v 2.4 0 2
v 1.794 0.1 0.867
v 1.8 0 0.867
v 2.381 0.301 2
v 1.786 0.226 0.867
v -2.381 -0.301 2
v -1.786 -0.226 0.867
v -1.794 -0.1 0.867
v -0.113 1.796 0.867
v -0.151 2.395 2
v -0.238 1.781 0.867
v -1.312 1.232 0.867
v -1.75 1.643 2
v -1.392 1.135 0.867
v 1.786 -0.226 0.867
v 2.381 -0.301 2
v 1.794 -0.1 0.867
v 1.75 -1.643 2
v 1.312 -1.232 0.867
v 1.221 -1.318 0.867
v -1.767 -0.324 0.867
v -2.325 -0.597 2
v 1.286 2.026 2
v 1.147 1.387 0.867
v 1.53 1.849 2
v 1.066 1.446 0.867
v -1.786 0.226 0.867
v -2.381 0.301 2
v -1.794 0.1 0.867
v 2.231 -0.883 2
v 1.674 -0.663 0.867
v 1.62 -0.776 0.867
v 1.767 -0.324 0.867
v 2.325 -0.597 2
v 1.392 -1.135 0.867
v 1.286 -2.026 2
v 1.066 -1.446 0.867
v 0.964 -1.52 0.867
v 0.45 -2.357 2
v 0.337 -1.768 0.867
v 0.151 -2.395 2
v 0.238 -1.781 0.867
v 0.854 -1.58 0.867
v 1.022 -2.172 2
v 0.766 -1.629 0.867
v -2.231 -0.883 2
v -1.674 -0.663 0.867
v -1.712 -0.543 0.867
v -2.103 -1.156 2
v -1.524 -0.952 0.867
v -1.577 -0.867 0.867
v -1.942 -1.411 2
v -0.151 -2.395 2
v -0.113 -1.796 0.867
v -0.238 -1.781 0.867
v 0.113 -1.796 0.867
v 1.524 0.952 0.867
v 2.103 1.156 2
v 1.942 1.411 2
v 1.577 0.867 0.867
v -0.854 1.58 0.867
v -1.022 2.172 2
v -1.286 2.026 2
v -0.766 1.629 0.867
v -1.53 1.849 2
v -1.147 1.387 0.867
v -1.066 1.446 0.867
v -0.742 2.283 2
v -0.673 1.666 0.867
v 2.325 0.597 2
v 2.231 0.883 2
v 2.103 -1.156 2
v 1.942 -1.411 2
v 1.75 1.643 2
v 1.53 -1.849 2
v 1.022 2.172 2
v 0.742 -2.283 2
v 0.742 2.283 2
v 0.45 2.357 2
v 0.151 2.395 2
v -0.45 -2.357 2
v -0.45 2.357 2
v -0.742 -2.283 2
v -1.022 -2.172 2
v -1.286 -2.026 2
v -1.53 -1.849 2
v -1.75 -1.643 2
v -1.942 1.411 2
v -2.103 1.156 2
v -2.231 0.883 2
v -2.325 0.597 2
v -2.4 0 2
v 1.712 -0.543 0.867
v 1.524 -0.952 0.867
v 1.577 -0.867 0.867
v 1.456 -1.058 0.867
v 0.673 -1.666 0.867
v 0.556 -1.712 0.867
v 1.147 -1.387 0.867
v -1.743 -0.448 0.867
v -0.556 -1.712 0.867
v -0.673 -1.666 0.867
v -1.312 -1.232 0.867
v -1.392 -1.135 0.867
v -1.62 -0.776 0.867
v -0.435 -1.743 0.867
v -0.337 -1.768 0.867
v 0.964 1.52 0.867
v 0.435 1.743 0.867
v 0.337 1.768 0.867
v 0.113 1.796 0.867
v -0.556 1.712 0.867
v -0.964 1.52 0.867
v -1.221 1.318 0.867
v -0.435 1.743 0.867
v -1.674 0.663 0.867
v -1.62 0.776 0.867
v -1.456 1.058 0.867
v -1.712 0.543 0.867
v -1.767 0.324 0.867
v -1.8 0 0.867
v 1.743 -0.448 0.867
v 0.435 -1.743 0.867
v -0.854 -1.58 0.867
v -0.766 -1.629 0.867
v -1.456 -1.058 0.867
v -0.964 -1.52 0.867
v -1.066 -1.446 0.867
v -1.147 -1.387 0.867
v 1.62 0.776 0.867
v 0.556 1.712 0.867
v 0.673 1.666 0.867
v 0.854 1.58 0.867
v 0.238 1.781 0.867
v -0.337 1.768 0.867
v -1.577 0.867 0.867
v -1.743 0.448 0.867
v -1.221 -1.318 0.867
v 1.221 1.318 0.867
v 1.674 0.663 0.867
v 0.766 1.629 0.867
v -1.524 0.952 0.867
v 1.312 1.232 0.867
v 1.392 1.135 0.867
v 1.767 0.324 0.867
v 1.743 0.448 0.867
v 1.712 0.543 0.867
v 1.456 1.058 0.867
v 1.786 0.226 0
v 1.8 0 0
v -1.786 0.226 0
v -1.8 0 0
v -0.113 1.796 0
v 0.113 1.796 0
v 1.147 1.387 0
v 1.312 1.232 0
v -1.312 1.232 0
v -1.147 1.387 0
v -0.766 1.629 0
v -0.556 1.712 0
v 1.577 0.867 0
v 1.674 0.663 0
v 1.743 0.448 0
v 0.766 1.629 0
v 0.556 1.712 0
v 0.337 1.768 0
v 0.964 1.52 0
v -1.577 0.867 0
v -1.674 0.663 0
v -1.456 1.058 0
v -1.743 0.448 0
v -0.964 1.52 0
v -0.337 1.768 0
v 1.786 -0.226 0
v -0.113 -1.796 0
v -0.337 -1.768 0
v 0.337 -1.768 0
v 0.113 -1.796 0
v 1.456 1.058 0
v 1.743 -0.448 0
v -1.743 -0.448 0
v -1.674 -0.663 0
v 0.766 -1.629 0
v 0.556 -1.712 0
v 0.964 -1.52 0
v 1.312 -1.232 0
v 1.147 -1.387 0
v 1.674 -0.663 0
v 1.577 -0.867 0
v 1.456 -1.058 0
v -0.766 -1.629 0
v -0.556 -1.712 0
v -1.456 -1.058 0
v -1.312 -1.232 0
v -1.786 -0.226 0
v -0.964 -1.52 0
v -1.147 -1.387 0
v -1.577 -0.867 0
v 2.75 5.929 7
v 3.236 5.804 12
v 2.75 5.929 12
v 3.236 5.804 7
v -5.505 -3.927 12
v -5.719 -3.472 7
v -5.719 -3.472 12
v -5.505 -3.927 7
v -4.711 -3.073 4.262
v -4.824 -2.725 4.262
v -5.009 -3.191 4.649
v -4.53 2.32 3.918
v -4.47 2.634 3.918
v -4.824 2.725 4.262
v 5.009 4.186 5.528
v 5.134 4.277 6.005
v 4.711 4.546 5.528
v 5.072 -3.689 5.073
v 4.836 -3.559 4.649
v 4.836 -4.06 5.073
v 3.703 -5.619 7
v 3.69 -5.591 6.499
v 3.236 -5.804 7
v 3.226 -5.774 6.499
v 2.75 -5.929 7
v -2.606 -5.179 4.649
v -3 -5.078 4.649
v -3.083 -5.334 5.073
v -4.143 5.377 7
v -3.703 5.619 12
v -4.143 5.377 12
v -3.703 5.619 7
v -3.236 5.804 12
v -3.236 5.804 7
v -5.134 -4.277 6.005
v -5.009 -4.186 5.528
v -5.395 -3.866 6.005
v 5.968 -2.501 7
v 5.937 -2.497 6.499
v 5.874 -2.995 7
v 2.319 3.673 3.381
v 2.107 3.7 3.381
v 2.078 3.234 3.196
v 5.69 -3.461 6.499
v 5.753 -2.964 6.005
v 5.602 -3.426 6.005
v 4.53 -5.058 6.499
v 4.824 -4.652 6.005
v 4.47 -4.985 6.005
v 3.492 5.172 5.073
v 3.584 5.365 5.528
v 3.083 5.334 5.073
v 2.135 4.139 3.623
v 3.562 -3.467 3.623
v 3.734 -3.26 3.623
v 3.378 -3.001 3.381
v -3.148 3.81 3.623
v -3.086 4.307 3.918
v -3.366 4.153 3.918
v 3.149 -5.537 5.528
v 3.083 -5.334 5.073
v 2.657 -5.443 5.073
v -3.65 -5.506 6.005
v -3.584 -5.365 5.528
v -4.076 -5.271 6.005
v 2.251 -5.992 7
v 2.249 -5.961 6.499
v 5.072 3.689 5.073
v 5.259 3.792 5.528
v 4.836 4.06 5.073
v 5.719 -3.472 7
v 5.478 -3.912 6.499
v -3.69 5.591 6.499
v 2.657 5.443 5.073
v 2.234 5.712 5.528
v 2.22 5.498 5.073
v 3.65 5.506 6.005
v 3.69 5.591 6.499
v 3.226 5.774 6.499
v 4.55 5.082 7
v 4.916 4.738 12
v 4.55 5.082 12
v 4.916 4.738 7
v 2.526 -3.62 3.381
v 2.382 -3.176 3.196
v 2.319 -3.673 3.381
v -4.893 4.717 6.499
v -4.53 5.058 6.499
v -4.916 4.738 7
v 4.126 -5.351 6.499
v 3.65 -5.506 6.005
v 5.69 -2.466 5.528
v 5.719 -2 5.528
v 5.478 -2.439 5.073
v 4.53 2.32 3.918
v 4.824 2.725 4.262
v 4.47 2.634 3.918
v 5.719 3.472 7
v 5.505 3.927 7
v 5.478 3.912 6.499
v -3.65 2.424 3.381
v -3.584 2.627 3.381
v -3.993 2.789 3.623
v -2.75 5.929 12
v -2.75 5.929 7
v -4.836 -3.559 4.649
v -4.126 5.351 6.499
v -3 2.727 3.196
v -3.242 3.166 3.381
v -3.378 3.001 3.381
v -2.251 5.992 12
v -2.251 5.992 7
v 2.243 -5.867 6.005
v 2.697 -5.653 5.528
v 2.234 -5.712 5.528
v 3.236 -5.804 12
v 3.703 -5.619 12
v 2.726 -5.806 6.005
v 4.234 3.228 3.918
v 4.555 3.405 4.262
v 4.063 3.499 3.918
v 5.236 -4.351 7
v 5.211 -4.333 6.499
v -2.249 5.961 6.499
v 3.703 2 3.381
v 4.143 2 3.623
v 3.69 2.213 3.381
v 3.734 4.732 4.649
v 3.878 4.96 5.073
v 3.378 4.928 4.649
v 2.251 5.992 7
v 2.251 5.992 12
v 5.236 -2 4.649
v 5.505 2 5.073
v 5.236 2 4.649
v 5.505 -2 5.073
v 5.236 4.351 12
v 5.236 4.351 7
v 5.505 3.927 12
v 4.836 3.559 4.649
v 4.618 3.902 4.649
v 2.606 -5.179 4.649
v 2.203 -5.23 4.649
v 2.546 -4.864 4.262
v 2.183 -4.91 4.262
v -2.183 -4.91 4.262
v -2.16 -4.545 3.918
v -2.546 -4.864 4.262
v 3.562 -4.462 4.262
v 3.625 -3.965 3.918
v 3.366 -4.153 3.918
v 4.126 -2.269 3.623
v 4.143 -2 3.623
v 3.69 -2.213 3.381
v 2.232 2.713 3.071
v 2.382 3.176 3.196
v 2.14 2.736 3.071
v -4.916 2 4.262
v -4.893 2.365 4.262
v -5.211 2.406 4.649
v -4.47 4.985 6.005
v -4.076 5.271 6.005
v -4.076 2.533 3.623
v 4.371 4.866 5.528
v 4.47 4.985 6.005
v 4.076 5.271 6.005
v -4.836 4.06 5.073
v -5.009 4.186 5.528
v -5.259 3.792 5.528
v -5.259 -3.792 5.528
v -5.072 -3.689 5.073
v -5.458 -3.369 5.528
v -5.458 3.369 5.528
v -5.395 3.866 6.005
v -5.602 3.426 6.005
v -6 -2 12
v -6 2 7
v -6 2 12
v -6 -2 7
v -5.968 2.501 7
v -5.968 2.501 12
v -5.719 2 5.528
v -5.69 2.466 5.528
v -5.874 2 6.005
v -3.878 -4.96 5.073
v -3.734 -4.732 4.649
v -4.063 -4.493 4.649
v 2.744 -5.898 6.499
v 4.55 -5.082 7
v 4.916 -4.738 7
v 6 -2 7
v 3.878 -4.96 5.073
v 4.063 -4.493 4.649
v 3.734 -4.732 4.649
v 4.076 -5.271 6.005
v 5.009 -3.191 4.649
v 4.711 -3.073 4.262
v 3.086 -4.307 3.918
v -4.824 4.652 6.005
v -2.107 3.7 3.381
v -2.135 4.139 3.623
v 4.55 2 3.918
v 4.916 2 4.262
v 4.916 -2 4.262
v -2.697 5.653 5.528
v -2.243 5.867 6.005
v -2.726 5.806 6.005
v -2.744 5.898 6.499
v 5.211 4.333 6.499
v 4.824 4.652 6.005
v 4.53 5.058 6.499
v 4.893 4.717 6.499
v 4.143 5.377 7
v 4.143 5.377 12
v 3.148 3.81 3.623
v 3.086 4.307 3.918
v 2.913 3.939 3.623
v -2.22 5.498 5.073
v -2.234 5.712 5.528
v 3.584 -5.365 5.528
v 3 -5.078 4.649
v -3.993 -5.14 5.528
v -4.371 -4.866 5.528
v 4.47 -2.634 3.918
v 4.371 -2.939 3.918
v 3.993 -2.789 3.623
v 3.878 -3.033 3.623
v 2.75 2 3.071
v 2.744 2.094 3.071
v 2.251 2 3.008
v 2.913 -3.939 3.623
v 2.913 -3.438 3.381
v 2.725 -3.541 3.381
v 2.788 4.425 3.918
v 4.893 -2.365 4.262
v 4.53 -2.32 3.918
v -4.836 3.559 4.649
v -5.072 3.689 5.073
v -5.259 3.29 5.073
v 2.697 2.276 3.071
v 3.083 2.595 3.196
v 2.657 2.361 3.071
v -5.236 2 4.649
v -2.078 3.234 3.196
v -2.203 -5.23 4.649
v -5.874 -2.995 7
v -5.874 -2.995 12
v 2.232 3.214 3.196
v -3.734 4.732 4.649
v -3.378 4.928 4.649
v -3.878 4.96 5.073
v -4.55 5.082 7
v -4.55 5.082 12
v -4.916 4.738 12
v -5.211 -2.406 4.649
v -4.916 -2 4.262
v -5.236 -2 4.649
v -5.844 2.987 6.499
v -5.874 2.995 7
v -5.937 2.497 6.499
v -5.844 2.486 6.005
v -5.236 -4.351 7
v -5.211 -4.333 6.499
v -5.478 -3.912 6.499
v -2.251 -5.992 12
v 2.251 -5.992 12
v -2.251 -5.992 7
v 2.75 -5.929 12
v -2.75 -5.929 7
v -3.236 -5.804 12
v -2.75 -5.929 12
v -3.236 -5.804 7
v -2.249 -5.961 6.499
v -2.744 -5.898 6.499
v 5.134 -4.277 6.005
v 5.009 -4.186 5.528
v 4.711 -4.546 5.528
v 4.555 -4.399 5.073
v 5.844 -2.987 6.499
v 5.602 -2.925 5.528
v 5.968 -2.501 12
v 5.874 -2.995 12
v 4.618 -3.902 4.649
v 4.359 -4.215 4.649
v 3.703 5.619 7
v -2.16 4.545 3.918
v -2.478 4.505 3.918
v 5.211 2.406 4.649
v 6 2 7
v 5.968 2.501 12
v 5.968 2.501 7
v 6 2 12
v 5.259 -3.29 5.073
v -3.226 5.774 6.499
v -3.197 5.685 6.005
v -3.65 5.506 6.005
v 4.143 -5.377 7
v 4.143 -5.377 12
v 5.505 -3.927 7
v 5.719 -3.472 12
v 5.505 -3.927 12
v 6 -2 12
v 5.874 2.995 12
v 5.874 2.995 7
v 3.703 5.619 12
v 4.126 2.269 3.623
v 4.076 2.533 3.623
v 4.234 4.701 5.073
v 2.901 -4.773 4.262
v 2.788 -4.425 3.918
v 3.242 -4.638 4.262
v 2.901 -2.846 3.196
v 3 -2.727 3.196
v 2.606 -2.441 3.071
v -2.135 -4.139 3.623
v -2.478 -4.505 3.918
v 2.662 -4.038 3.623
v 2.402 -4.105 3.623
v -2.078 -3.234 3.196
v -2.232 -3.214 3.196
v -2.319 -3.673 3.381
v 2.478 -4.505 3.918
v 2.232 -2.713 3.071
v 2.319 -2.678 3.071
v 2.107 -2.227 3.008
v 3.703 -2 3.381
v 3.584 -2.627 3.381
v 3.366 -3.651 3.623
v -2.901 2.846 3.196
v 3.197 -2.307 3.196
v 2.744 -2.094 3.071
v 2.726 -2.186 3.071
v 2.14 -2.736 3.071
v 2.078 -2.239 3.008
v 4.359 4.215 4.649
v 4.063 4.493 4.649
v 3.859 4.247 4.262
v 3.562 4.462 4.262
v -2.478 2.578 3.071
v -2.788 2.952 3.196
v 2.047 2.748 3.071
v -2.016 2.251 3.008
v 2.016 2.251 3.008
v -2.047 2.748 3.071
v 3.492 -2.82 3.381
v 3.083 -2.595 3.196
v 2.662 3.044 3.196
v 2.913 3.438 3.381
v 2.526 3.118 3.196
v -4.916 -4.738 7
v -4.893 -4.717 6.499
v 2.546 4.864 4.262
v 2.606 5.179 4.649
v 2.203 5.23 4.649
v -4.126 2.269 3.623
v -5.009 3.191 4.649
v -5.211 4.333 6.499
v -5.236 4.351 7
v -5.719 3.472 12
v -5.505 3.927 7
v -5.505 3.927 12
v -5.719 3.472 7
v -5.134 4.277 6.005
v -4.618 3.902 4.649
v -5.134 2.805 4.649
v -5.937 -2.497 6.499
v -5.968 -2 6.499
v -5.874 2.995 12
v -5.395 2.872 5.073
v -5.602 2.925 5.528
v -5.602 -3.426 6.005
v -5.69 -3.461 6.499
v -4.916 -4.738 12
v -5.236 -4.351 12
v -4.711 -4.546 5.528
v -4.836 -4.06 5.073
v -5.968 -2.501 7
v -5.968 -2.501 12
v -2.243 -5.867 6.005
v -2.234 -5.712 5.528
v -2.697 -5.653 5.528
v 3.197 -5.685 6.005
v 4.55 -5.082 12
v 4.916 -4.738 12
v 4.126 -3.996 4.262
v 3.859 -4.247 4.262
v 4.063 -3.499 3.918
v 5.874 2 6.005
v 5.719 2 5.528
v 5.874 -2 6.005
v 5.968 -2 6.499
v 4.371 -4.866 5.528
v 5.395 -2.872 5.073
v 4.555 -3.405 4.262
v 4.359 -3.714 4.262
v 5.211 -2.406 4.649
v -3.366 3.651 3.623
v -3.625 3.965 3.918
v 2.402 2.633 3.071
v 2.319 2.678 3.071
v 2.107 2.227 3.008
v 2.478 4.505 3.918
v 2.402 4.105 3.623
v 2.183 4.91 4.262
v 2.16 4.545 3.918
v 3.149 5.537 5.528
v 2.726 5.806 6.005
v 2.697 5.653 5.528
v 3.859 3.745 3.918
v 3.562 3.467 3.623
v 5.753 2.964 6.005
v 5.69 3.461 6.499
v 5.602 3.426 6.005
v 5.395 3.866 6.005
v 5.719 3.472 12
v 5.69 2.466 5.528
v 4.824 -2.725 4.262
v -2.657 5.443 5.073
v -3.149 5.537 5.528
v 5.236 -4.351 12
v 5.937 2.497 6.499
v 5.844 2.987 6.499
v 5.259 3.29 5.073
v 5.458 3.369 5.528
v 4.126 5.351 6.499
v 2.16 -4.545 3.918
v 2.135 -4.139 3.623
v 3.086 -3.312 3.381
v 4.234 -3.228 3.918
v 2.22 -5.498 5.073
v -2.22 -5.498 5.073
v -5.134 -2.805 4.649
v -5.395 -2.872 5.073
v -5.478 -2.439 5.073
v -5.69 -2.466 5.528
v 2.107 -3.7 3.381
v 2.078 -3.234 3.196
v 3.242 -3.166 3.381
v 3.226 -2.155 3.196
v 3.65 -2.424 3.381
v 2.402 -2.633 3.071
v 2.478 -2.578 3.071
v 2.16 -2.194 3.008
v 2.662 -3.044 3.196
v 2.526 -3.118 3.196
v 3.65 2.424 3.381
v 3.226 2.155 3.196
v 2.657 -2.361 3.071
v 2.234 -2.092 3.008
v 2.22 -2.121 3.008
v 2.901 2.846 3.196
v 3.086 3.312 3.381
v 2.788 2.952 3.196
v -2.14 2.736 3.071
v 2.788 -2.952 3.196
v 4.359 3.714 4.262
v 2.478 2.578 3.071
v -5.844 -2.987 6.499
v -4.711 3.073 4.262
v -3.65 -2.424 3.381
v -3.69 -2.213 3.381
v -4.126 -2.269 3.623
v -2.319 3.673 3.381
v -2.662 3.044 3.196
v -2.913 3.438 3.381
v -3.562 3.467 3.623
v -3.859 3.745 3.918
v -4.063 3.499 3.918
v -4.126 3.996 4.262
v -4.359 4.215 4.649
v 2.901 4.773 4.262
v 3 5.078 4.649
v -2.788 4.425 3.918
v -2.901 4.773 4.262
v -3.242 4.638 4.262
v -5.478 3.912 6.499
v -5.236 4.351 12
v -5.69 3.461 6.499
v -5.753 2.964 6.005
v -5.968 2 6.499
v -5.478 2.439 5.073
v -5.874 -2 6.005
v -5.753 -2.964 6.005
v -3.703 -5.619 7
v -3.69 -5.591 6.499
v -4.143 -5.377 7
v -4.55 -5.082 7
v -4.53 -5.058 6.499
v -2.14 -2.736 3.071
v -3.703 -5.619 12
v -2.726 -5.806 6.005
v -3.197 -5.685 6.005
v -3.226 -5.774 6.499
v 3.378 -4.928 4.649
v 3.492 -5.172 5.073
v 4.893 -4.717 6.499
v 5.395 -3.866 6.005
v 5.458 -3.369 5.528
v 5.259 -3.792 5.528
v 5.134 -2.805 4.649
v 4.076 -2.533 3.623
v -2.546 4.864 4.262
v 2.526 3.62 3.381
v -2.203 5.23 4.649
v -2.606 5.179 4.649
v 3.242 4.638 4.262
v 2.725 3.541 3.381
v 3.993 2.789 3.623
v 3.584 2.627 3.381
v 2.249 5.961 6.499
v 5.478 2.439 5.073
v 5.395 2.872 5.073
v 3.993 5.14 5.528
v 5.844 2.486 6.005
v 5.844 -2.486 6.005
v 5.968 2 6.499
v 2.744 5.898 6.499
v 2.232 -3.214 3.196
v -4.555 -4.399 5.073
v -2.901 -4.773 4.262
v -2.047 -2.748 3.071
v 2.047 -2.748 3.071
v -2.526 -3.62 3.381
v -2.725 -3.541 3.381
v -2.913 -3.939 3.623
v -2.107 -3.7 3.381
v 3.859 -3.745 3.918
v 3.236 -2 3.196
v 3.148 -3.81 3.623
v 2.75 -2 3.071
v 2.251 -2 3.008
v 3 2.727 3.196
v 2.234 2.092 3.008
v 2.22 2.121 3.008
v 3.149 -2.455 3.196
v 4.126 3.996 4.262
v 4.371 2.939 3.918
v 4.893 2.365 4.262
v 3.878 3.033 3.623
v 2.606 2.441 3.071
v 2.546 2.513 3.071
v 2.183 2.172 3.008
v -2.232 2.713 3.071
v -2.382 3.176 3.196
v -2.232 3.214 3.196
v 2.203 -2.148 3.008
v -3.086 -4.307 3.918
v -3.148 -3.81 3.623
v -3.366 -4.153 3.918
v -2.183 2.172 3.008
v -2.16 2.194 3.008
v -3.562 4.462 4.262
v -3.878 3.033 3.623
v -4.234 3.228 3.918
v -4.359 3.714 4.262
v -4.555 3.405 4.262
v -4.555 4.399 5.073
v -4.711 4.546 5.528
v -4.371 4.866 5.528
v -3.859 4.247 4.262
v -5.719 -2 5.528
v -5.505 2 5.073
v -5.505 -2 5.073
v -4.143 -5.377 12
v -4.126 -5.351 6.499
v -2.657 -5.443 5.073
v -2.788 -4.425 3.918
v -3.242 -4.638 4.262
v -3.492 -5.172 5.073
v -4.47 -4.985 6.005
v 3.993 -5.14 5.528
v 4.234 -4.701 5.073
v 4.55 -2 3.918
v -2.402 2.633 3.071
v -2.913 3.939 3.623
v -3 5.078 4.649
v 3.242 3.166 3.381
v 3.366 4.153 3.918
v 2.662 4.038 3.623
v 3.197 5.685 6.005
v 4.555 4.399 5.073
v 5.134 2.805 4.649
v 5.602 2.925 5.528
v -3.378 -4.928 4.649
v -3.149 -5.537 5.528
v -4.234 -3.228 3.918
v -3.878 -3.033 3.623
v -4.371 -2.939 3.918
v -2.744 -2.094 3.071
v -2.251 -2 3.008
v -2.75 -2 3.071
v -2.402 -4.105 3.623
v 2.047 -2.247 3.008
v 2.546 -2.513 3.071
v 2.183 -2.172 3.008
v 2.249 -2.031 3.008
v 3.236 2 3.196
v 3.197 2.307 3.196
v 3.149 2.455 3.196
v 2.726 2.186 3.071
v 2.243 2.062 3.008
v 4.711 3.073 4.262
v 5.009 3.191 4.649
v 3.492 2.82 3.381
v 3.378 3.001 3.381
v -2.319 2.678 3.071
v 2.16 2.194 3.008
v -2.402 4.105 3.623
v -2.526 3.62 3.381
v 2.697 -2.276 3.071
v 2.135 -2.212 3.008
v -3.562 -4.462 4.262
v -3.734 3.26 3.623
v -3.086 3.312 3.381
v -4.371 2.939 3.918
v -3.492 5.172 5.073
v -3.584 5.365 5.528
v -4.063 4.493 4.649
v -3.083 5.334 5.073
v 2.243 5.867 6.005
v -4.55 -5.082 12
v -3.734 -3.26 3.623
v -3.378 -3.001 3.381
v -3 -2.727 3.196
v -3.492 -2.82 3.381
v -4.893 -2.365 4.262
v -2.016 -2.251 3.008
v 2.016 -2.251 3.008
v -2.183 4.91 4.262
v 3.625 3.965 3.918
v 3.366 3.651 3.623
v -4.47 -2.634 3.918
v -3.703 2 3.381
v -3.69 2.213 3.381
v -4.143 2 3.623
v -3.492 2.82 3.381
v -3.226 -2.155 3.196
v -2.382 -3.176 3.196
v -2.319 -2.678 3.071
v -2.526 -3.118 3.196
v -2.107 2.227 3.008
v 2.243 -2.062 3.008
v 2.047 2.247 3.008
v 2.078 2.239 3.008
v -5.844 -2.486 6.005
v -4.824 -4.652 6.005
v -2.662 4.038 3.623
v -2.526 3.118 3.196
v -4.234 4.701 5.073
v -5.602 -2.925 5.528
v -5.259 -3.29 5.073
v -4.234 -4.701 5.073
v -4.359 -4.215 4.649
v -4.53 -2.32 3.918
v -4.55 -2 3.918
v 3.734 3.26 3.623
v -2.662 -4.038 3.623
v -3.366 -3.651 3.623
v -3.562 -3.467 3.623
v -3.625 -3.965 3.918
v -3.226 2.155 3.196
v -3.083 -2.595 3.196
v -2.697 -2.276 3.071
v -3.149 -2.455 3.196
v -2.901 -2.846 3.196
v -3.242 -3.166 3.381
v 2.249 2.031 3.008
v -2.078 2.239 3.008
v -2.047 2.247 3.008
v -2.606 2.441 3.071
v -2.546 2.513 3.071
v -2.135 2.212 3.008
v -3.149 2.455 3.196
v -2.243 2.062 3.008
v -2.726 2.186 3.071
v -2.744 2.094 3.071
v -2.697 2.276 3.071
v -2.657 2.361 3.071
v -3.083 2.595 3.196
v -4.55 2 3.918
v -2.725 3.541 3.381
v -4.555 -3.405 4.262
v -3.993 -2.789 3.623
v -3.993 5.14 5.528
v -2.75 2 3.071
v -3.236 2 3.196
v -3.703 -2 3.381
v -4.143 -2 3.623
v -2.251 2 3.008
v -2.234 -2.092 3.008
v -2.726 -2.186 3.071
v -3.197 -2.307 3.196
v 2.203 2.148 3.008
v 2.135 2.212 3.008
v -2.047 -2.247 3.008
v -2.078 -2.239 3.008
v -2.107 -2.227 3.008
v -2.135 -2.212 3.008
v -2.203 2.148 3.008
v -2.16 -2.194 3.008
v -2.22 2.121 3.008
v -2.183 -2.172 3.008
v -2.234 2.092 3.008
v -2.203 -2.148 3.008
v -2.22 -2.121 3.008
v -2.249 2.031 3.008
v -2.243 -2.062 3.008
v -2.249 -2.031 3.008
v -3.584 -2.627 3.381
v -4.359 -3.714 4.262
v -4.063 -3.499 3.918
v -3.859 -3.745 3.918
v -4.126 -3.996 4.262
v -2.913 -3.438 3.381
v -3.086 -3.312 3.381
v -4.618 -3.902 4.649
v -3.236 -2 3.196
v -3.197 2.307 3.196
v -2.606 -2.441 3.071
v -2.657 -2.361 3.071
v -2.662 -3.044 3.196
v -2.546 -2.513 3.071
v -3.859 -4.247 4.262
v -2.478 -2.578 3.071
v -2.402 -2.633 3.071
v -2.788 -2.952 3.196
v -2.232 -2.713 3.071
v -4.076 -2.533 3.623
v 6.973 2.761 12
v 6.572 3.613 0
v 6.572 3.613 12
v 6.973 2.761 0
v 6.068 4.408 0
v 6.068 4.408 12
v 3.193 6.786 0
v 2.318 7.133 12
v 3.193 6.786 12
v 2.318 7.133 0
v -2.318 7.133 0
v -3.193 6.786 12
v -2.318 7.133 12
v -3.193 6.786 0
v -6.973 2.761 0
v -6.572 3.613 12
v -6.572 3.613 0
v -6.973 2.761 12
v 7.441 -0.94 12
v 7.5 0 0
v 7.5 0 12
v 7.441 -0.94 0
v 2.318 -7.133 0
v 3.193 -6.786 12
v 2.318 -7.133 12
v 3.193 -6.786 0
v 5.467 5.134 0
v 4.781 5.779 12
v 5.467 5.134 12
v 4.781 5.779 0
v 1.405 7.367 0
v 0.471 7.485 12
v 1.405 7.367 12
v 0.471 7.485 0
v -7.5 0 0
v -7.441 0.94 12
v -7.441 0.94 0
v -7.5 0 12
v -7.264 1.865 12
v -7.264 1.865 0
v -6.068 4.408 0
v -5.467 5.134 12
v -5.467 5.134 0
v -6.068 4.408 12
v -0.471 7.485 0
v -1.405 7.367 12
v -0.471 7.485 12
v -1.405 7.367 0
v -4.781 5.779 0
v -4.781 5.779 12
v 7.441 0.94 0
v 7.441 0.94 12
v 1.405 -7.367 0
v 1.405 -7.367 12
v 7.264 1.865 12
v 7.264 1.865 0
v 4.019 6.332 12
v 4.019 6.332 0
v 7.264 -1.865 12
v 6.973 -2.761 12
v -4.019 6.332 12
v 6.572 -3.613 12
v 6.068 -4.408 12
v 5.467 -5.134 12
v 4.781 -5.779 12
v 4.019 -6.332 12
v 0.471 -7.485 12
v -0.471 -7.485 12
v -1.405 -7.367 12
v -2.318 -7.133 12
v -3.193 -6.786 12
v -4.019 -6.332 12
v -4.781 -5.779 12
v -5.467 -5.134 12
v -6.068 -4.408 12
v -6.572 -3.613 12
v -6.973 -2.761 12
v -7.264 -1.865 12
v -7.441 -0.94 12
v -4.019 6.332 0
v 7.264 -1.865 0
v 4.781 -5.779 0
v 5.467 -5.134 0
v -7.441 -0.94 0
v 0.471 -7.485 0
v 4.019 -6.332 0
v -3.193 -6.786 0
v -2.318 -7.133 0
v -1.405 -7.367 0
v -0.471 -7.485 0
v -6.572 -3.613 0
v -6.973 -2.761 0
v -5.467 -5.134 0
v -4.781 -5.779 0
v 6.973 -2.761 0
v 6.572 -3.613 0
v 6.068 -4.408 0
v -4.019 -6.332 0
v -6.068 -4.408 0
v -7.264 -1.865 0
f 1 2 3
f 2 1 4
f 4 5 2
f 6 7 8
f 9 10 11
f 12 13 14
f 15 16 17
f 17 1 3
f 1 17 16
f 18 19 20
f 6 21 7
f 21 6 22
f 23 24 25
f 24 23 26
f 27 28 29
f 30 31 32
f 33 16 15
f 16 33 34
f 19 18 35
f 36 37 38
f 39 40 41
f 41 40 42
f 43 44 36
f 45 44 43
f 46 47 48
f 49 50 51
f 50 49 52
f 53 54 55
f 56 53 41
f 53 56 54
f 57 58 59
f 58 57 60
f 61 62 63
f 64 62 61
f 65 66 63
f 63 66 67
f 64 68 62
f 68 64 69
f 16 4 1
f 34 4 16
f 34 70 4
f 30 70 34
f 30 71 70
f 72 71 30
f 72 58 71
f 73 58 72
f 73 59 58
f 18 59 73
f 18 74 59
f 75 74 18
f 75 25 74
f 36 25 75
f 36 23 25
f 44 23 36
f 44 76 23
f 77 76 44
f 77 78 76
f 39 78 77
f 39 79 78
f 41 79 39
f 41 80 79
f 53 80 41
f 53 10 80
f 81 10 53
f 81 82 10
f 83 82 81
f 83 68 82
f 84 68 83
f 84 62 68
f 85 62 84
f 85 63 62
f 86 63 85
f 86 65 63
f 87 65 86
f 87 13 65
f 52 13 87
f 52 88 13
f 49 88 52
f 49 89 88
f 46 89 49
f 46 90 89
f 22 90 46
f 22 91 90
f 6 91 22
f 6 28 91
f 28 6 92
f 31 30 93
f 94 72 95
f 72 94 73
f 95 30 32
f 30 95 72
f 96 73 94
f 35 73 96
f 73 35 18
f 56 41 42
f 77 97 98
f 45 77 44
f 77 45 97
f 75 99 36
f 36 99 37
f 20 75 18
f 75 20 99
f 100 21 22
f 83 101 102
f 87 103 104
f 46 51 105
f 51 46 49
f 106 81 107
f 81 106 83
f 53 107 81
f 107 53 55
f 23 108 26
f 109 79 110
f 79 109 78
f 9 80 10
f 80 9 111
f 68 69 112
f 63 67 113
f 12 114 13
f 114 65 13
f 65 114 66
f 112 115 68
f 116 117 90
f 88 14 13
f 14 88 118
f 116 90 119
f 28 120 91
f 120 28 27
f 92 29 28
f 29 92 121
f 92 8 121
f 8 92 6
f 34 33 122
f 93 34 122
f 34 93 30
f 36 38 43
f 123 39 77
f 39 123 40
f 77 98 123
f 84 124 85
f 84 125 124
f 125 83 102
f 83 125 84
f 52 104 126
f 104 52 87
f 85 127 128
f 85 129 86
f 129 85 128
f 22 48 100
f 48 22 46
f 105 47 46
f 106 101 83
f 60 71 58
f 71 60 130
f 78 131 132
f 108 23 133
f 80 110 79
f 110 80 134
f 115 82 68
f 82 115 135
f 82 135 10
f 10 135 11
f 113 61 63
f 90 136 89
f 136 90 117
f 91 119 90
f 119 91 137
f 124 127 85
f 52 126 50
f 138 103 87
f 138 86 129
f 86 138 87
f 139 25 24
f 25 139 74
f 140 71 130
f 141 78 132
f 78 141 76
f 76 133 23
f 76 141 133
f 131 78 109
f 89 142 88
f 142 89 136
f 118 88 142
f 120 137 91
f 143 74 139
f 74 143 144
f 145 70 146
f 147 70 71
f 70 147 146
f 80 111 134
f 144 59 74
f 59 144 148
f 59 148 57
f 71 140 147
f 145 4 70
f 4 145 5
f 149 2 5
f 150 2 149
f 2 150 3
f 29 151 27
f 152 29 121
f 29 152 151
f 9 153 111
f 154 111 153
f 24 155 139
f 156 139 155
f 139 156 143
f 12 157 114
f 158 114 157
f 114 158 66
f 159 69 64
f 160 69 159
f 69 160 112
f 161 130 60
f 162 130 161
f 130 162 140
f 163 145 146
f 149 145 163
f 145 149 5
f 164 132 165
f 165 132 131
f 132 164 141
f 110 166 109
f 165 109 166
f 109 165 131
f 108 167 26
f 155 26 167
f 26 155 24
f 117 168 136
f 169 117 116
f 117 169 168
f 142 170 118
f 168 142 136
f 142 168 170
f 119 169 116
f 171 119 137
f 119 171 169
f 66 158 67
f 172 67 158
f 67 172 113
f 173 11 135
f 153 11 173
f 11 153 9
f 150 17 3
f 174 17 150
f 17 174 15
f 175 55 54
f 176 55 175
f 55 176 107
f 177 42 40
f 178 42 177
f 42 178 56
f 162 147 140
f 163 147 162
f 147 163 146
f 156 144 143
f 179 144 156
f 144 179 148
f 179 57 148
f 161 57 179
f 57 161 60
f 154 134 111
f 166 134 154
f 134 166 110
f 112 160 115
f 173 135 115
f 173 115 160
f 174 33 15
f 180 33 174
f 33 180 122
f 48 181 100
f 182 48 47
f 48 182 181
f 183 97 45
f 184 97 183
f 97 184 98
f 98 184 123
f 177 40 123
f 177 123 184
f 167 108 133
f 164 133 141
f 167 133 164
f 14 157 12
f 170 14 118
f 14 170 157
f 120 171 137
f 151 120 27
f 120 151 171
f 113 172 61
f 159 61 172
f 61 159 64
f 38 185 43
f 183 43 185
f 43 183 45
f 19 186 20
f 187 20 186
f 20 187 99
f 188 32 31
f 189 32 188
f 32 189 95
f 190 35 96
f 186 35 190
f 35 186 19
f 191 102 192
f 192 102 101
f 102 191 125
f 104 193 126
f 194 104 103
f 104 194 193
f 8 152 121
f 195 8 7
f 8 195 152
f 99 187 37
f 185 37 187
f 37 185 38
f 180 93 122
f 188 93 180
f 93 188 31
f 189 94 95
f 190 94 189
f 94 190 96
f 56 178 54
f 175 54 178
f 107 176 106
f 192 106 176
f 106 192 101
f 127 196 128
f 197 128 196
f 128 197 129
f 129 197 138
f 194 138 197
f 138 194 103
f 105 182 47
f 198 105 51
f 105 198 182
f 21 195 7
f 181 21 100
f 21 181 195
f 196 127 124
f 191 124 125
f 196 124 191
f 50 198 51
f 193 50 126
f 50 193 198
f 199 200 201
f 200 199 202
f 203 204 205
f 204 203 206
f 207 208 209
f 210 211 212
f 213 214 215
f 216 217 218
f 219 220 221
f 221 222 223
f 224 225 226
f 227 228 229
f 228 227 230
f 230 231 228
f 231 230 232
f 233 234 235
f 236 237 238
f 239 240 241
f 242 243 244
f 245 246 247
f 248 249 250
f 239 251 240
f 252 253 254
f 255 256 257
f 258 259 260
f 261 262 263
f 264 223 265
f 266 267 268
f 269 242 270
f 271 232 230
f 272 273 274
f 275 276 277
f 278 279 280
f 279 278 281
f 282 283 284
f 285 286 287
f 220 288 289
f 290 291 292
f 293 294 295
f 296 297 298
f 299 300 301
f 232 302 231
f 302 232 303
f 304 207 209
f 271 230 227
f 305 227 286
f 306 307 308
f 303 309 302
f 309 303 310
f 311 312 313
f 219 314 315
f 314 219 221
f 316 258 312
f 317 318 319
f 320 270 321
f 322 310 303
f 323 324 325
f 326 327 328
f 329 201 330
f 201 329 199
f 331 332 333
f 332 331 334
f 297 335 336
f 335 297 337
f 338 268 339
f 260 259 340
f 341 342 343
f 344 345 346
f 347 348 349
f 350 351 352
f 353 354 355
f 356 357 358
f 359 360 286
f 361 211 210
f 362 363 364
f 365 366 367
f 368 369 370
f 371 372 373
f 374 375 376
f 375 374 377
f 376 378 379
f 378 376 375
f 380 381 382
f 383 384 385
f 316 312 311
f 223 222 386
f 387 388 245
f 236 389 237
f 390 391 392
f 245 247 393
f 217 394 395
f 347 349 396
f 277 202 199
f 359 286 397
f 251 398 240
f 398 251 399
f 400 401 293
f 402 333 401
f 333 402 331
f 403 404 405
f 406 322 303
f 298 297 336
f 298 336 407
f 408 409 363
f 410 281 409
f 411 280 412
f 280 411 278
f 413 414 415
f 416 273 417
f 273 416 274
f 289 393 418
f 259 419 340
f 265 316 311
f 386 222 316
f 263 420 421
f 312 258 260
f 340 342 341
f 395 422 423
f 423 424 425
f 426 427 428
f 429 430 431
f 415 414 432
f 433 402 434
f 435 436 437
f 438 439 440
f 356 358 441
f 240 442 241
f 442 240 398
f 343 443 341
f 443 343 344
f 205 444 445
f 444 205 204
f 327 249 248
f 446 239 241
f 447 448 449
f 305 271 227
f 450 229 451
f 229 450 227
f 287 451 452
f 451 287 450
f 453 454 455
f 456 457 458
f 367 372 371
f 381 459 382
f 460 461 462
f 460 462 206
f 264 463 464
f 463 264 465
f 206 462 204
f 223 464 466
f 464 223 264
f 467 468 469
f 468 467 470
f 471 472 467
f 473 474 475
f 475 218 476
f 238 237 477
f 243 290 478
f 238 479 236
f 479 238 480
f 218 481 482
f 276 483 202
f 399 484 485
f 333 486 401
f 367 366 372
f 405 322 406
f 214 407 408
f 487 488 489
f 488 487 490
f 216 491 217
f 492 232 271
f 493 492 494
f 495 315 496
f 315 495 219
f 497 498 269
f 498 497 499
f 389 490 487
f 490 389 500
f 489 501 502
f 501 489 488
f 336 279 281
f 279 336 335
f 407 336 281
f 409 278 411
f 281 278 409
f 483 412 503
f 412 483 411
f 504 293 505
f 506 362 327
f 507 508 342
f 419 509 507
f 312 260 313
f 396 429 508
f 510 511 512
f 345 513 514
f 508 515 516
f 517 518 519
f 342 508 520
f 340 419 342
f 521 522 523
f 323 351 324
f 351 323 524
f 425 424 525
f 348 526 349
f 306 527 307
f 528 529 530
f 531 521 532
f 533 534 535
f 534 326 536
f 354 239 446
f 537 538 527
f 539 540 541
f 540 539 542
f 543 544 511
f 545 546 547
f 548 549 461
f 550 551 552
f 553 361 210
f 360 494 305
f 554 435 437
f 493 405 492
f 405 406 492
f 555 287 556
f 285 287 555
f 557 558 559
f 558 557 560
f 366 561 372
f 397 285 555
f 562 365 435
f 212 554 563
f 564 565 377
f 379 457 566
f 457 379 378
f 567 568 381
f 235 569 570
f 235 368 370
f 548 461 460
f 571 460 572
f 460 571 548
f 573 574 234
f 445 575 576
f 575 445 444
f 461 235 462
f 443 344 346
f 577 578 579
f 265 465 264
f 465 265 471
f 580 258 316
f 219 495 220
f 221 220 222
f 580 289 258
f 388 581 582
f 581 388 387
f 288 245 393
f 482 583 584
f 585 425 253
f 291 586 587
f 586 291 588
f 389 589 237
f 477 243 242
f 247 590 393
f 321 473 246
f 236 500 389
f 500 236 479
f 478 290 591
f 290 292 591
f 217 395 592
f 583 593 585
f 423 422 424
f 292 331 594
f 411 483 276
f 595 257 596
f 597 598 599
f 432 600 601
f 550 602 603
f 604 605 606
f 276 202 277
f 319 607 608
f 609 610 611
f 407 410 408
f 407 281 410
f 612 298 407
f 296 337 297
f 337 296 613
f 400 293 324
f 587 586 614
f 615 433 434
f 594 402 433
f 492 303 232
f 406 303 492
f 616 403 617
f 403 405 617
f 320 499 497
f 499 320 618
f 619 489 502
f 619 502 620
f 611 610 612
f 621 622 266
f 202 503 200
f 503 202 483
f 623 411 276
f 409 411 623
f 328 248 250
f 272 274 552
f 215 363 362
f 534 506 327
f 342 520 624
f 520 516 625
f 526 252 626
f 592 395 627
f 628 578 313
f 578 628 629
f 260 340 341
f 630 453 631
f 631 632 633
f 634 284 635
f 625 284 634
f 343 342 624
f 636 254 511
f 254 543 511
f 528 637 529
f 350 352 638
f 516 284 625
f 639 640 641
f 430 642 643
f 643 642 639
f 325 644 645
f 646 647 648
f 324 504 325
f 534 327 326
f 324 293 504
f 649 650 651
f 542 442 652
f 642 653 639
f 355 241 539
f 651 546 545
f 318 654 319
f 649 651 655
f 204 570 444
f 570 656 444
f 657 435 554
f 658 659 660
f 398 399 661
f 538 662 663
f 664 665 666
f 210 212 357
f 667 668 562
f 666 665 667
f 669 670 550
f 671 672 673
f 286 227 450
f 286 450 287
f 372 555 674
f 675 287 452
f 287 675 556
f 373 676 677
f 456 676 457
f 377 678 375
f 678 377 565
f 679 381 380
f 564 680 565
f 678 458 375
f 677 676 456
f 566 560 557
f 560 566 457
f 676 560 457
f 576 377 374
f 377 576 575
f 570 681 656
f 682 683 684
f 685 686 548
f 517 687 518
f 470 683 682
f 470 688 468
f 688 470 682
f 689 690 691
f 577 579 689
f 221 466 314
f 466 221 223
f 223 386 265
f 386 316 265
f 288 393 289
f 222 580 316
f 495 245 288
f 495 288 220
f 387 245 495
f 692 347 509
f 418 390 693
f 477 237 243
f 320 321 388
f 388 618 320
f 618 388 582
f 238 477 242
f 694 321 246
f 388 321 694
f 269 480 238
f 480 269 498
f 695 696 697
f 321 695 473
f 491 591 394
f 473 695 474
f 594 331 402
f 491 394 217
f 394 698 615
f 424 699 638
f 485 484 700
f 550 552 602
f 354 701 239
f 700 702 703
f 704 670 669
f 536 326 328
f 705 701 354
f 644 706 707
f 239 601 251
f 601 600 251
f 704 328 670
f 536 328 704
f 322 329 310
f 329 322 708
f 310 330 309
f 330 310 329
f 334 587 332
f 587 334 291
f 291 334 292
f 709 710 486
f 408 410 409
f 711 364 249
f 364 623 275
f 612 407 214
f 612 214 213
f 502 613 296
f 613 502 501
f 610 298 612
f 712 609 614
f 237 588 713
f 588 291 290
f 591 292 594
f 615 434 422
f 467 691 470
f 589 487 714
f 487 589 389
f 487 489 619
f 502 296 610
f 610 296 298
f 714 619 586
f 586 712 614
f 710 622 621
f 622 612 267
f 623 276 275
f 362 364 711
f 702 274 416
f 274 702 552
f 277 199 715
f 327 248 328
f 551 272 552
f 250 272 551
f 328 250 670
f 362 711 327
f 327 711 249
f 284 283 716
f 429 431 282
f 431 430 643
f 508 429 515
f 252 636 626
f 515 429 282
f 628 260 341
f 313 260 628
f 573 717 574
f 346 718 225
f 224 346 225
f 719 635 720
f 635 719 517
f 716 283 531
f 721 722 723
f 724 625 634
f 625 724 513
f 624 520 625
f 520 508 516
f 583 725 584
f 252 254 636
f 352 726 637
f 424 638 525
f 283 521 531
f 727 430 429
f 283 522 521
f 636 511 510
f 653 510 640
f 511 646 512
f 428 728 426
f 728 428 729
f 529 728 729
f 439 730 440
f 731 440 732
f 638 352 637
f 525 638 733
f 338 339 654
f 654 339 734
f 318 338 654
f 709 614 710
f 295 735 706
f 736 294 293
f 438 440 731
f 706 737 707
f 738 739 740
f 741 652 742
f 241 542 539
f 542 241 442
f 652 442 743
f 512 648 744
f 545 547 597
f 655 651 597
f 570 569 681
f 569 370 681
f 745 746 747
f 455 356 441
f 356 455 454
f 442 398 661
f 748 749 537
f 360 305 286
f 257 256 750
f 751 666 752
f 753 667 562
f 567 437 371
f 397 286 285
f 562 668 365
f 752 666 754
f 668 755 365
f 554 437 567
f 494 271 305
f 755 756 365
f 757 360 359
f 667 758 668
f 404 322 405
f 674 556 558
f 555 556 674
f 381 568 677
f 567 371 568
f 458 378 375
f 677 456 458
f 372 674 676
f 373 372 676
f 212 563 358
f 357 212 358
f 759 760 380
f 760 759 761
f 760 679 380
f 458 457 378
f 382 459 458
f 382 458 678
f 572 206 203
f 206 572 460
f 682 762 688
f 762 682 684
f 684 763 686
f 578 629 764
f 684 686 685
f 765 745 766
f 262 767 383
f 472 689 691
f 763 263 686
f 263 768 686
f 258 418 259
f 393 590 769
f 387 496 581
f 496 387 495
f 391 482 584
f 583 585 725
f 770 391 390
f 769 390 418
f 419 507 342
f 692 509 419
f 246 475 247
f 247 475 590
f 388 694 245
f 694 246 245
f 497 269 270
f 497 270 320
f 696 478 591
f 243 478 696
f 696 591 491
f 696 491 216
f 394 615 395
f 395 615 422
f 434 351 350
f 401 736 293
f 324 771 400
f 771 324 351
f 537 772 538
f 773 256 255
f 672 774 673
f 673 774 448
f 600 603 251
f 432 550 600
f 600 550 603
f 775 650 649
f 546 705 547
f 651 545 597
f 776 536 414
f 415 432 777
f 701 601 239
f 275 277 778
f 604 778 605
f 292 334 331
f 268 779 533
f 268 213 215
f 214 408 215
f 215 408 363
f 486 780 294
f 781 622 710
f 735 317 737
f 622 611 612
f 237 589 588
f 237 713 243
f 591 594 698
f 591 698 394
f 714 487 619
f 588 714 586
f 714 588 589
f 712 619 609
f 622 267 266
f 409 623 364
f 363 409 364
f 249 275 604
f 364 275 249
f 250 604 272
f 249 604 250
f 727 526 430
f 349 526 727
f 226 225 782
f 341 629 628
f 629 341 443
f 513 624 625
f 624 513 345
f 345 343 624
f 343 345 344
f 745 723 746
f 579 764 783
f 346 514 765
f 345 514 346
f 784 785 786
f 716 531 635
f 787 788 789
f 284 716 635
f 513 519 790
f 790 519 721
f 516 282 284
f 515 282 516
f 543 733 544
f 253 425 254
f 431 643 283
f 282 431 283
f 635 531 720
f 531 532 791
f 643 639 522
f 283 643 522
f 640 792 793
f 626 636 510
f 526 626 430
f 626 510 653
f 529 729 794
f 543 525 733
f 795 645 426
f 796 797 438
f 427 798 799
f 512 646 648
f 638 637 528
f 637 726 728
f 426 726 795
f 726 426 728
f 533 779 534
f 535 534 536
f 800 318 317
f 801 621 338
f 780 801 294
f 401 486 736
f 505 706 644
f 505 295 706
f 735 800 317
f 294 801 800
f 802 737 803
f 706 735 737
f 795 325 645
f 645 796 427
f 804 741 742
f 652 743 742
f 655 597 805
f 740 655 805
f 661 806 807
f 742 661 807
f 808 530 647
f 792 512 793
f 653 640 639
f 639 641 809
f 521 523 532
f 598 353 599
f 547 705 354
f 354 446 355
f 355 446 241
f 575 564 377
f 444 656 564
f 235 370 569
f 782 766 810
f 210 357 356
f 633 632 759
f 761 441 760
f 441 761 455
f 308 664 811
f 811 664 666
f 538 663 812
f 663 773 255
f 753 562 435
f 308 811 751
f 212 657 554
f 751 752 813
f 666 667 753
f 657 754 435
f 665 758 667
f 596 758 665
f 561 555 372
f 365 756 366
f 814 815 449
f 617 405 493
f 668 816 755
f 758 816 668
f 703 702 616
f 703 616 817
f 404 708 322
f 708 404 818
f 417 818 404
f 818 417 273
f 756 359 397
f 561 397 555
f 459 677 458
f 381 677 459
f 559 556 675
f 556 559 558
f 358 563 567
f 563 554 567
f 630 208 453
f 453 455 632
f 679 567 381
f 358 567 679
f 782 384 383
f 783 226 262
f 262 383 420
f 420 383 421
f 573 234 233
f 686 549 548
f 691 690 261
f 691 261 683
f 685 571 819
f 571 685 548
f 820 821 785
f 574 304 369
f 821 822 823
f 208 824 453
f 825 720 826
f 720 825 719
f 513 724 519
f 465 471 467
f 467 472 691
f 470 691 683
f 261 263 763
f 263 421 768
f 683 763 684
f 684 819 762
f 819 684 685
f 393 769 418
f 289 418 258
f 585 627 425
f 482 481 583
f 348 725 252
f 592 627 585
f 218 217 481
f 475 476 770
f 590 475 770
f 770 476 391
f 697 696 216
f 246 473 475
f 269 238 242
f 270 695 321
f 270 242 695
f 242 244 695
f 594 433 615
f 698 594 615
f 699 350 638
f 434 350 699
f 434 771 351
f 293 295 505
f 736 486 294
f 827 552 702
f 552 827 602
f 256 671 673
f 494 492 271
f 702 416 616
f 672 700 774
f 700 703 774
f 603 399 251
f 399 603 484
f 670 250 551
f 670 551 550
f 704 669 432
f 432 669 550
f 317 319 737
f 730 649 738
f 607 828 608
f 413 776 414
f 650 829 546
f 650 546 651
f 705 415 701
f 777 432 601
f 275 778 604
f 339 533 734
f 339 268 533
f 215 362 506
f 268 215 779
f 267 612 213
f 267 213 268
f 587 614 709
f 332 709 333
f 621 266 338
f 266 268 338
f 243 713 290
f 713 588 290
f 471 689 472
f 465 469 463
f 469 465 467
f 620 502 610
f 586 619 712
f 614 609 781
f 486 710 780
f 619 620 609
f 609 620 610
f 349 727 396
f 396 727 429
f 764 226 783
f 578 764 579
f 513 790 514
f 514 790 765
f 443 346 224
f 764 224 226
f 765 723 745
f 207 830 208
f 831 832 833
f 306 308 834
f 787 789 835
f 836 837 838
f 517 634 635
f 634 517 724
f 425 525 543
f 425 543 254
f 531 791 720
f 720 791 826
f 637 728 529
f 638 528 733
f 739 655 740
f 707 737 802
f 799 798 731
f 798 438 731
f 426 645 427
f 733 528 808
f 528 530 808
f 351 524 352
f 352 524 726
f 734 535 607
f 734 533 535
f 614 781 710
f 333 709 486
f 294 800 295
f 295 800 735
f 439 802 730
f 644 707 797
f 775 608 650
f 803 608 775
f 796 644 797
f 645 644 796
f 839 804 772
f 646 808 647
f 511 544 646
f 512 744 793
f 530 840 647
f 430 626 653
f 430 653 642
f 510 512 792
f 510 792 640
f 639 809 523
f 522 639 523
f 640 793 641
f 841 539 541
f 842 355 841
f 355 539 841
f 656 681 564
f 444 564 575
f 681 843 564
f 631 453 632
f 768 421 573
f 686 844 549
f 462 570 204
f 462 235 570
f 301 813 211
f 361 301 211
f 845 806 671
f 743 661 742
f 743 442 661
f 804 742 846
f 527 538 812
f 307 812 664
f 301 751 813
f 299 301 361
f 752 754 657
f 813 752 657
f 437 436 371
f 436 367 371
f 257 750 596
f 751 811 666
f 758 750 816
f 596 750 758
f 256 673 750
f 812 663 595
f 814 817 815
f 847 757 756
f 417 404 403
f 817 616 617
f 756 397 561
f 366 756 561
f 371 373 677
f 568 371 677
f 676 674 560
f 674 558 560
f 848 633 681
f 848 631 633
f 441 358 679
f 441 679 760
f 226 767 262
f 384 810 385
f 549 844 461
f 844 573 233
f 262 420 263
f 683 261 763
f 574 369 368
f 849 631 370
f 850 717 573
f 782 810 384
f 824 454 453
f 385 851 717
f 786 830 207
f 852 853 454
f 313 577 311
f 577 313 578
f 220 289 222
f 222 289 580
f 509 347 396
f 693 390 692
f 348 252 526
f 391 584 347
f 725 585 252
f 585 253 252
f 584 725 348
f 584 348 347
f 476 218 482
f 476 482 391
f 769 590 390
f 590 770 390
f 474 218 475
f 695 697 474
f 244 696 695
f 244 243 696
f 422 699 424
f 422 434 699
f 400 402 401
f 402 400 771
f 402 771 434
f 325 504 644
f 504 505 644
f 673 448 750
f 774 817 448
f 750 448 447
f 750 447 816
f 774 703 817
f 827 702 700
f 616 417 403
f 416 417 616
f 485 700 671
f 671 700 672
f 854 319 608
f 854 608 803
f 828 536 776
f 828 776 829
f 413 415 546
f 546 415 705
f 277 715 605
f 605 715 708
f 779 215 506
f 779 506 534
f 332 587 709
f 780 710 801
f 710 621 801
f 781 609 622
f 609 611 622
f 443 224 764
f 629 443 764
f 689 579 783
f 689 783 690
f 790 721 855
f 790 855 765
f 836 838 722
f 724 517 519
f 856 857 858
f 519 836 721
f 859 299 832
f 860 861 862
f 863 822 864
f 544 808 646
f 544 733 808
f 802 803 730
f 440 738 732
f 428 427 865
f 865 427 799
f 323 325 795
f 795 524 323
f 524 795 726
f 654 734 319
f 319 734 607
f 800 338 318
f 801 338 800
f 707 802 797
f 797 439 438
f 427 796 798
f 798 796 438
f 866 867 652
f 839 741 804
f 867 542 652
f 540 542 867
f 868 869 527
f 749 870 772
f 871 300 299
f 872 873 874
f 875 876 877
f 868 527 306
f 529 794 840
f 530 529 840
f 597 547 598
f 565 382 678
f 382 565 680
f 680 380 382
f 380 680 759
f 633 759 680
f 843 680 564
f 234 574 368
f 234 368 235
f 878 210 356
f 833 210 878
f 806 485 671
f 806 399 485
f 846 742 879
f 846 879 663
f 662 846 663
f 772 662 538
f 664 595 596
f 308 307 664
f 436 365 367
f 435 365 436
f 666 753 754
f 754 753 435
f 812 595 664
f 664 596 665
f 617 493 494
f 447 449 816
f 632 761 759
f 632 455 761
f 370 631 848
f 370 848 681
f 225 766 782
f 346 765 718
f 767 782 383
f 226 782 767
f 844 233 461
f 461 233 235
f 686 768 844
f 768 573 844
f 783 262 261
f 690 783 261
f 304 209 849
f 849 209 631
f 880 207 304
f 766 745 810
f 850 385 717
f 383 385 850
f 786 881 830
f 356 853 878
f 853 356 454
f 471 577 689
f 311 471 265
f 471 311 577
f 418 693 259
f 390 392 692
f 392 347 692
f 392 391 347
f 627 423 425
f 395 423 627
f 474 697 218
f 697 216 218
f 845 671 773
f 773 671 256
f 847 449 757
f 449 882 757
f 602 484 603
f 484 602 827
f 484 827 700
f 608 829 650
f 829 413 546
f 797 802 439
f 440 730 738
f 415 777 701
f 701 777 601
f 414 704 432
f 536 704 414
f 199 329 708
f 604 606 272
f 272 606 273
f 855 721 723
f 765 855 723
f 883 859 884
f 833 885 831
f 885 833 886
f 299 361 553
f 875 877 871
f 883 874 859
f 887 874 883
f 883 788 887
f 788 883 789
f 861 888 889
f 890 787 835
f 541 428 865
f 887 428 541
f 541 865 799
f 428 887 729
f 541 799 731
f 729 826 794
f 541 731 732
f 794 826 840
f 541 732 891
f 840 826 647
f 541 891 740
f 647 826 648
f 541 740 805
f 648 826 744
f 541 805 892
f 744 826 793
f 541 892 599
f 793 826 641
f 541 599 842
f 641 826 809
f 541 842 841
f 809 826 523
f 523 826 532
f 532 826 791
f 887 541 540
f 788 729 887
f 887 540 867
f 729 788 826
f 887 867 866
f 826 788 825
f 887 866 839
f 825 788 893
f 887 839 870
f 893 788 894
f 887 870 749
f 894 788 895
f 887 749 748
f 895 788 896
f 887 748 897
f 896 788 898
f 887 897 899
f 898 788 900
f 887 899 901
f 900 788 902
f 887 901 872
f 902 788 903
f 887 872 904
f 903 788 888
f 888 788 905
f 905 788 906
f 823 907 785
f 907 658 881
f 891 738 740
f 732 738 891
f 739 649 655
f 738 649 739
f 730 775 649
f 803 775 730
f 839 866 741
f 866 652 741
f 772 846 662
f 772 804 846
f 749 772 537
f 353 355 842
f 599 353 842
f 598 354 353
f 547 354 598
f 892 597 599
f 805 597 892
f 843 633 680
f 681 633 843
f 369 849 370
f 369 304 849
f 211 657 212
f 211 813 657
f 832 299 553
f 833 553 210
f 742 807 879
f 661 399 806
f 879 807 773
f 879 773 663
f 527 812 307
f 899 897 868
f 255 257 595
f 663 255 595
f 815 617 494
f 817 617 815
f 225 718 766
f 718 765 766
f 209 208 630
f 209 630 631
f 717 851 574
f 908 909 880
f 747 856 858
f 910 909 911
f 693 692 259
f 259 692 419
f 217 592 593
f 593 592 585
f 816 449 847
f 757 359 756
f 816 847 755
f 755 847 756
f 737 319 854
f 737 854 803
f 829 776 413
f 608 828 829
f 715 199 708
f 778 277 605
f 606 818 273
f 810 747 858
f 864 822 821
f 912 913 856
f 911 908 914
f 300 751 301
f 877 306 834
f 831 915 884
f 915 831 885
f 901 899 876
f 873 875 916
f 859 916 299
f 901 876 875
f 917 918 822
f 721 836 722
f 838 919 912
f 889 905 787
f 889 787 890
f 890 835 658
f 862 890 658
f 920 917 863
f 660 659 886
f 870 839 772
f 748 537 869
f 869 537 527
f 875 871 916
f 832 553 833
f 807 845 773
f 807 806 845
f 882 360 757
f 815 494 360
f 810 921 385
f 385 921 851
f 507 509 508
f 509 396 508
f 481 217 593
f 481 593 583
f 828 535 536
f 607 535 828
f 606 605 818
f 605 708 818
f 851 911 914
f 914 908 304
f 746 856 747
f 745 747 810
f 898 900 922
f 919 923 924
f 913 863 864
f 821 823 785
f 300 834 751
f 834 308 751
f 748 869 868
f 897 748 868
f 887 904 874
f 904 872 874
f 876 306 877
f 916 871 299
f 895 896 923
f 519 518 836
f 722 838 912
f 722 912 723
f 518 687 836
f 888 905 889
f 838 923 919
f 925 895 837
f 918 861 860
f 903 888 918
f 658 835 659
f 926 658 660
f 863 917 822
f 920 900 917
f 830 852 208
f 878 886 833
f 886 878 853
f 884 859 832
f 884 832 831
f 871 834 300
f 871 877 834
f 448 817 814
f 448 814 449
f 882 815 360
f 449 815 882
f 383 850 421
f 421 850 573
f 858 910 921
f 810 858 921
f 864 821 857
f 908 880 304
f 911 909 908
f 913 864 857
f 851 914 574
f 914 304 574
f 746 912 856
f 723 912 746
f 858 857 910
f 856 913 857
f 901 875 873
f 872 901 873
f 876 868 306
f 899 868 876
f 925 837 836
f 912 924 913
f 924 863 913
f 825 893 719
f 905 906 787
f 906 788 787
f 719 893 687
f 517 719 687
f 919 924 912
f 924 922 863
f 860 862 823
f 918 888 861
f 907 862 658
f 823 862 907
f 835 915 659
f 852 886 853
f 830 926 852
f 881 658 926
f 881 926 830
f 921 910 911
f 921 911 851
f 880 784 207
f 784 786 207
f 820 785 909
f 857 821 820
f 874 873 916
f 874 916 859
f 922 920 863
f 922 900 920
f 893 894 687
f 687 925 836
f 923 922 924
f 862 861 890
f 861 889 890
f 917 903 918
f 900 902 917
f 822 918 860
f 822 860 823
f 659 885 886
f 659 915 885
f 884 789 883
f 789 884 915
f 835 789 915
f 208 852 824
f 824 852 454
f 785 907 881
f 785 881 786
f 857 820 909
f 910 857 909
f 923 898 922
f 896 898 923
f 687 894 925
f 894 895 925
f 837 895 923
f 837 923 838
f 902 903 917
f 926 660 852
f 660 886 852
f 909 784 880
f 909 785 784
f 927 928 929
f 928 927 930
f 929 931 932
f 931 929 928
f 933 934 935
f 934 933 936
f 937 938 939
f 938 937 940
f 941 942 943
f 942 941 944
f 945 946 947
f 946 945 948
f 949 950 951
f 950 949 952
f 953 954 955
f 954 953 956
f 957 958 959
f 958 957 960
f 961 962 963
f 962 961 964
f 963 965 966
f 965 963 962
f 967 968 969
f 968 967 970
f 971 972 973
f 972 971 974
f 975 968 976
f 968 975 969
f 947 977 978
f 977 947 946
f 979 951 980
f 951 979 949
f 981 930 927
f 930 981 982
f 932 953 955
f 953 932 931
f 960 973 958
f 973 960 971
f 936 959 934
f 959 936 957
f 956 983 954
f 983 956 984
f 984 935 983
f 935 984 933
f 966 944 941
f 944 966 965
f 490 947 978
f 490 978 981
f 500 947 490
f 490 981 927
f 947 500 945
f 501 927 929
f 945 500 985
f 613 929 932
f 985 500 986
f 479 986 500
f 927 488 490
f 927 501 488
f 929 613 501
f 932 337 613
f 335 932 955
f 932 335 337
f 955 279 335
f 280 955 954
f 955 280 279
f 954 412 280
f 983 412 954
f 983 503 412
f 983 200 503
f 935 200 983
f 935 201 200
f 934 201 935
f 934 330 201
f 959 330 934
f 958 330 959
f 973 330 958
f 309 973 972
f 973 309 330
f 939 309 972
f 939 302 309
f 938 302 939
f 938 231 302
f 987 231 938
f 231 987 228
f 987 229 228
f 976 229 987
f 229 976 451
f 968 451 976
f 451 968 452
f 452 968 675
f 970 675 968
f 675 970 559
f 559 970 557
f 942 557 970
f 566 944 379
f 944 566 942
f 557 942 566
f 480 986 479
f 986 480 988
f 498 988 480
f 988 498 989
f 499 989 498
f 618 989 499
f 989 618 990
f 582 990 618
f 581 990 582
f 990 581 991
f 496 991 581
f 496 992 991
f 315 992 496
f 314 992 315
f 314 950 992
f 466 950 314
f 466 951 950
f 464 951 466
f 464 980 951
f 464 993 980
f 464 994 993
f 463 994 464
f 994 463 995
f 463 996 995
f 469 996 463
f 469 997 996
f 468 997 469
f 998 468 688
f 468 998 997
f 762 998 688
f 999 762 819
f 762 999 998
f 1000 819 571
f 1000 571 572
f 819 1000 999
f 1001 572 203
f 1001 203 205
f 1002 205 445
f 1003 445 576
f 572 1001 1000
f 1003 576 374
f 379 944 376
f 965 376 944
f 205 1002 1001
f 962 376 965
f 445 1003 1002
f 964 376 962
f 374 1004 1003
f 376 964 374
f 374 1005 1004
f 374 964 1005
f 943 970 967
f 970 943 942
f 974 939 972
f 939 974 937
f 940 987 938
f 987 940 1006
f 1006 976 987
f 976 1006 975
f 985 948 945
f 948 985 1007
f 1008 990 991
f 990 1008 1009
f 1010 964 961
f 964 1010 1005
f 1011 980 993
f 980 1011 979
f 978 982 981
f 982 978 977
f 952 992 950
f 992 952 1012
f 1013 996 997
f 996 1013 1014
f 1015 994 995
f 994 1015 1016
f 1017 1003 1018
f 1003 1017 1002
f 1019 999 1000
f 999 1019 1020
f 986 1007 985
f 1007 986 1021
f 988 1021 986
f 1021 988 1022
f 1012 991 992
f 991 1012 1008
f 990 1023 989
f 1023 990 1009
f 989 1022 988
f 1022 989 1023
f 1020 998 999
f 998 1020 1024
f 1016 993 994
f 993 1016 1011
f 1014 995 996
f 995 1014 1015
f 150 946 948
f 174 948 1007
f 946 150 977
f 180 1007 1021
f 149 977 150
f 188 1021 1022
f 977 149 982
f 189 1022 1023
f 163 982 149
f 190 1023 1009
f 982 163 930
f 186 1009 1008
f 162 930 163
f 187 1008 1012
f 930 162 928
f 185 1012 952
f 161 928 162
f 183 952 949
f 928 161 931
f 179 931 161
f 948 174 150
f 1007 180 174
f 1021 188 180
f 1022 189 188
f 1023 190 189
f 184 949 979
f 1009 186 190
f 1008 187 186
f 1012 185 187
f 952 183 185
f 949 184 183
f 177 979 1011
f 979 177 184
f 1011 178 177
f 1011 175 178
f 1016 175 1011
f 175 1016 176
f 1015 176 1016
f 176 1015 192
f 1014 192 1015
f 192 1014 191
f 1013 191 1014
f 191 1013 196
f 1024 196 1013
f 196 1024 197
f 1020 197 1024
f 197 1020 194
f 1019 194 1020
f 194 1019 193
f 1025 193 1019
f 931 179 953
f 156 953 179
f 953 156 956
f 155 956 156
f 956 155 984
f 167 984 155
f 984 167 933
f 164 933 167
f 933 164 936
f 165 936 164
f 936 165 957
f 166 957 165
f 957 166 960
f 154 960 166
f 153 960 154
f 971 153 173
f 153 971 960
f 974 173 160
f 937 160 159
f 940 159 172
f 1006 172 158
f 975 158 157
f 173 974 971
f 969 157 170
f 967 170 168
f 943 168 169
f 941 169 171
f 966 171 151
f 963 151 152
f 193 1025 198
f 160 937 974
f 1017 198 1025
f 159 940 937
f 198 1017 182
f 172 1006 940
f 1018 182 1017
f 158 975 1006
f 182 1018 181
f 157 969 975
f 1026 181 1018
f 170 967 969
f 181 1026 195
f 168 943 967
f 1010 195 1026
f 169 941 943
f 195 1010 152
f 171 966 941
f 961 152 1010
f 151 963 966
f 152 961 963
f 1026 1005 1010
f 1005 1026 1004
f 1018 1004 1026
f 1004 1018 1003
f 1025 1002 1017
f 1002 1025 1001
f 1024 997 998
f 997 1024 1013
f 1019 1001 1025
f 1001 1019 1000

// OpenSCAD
$fn = 50;


difference() {
	union() {
		cylinder(h = 12, r = 7.5000000000);
	}
	union() {
		translate(v = [0.0000000000, 0.0000000000, 2]) {
			rotate(a = [0, 0, 0]) {
				difference() {
					union() {
						translate(v = [0, 0, -1.7000000000]) {
							cylinder(h = 1.7000000000, r1 = 1.5000000000, r2 = 2.4000000000);
						}
						translate(v = [0, 0, -6.0000000000]) {
							cylinder(h = 6, r = 1.5000000000);
						}
						translate(v = [0, 0, -6.0000000000]) {
							cylinder(h = 6, r = 1.8000000000);
						}
						translate(v = [0, 0, -6.0000000000]) {
							cylinder(h = 6, r = 1.5000000000);
						}
					}
					union();
				}
			}
		}
		translate(v = [0.0000000000, 0.0000000000, 2]) {
			rotate(a = [0, 0, 0]) {
				difference() {
					union() {
						translate(v = [0, 0, -1.7000000000]) {
							cylinder(h = 1.7000000000, r1 = 1.5000000000, r2 = 2.4000000000);
						}
						translate(v = [0, 0, -6.0000000000]) {
							cylinder(h = 6, r = 1.5000000000);
						}
						translate(v = [0, 0, -6.0000000000]) {
							cylinder(h = 6, r = 1.8000000000);
						}
						translate(v = [0, 0, -6.0000000000]) {
							cylinder(h = 6, r = 1.5000000000);
						}
					}
					union();
				}
			}
		}
		translate(v = [0.0000000000, 0.0000000000, 2]) {
			rotate(a = [0, 0, 0]) {
				difference() {
					union() {
						translate(v = [0, 0, -1.7000000000]) {
							cylinder(h = 1.7000000000, r1 = 1.5000000000, r2 = 2.4000000000);
						}
						translate(v = [0, 0, -6.0000000000]) {
							cylinder(h = 6, r = 1.5000000000);
						}
						translate(v = [0, 0, -6.0000000000]) {
							cylinder(h = 6, r = 1.8000000000);
						}
						translate(v = [0, 0, -6.0000000000]) {
							cylinder(h = 6, r = 1.5000000000);
						}
					}
					union();
				}
			}
		}
		translate(v = [0.0000000000, 0.0000000000, 2]) {
			rotate(a = [0, 0, 0]) {
				difference() {
					union() {
						translate(v = [0, 0, -1.7000000000]) {
							cylinder(h = 1.7000000000, r1 = 1.5000000000, r2 = 2.4000000000);
						}
						translate(v = [0, 0, -6.0000000000]) {
							cylinder(h = 6, r = 1.5000000000);
						}
						translate(v = [0, 0, -6.0000000000]) {
							cylinder(h = 6, r = 1.8000000000);
						}
						translate(v = [0, 0, -6.0000000000]) {
							cylinder(h = 6, r = 1.5000000000);
						}
					}
					union();
				}
			}
		}
		translate(v = [0, 0, 3]) {
			hull() {
				union() {
					translate(v = [-2.0000000000, 2.0000000000, 4]) {
						cylinder(h = 24, r = 4);
					}
					translate(v = [-2.0000000000, 2.0000000000, 4]) {
						sphere(r = 4);
					}
					translate(v = [-2.0000000000, 2.0000000000, 28]) {
						sphere(r = 4);
					}
				}
				union() {
					translate(v = [2.0000000000, 2.0000000000, 4]) {
						cylinder(h = 24, r = 4);
					}
					translate(v = [2.0000000000, 2.0000000000, 4]) {
						sphere(r = 4);
					}
					translate(v = [2.0000000000, 2.0000000000, 28]) {
						sphere(r = 4);
					}
				}
				union() {
					translate(v = [-2.0000000000, -2.0000000000, 4]) {
						cylinder(h = 24, r = 4);
					}
					translate(v = [-2.0000000000, -2.0000000000, 4]) {
						sphere(r = 4);
					}
					translate(v = [-2.0000000000, -2.0000000000, 28]) {
						sphere(r = 4);
					}
				}
				union() {
					translate(v = [2.0000000000, -2.0000000000, 4]) {
						cylinder(h = 24, r = 4);
					}
					translate(v = [2.0000000000, -2.0000000000, 4]) {
						sphere(r = 4);
					}
					translate(v = [2.0000000000, -2.0000000000, 28]) {
						sphere(r = 4);
					}
				}
			}
		}
	}
}
